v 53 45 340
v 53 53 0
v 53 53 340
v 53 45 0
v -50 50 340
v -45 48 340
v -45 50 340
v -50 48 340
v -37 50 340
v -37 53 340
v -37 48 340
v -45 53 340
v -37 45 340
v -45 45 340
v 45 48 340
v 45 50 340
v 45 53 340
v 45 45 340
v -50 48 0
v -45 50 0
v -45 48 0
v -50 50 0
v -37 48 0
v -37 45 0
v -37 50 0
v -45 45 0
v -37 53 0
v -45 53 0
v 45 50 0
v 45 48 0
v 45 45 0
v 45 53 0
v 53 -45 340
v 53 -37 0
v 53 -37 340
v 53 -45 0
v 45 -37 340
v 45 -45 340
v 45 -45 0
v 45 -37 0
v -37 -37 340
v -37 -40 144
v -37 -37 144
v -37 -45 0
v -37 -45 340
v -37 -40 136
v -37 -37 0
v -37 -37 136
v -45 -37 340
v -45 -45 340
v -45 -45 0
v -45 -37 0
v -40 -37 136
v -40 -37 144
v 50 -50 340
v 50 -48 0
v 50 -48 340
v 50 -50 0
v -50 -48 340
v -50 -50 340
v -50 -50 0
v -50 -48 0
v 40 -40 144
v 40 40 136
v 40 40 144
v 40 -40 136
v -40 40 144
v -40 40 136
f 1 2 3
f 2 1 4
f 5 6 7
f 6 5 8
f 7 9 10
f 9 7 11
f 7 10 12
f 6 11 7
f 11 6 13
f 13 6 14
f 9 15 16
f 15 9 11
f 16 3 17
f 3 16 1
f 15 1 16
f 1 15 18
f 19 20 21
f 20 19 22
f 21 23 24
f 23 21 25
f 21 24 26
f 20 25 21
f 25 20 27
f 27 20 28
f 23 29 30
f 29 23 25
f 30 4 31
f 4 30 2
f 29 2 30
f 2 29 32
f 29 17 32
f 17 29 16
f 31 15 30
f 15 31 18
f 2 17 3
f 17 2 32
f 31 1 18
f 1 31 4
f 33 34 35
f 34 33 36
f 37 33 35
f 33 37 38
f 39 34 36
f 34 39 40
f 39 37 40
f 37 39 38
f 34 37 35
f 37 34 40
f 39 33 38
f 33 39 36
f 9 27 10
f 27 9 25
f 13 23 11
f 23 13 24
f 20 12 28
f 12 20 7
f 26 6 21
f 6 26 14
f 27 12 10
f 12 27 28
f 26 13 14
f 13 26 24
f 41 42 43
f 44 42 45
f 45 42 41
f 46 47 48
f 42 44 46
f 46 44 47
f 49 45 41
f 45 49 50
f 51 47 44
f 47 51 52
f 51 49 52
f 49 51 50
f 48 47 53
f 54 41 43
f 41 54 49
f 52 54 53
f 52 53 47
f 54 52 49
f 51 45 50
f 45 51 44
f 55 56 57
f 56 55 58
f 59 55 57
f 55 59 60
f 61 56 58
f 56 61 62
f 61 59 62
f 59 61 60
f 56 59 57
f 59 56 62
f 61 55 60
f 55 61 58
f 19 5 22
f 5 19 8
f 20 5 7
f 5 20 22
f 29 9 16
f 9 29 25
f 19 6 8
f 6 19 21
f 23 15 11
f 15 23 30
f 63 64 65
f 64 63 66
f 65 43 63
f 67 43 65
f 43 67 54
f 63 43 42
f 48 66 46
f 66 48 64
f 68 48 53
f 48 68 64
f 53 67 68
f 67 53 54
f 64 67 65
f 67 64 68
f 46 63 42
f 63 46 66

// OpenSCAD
// ISM-SAT-1 3U bus study — B5 #31
// Units: mm. Structure sketch only — no weapons geometry.

u = 100;
h_3u = 340;

module rails() {
    for (xy = [[1, 1], [1, -1], [-1, 1], [-1, -1]])
        translate([xy[0] * (u / 2 - 5), xy[1] * (u / 2 - 5), 0])
            cube([8, 8, h_3u], center = false);
}

module panels() {
    translate([-u / 2, -u / 2, 0])
        cube([u, 2, h_3u]);
    translate([-u / 2, u / 2 - 2, 0])
        cube([u, 2, h_3u]);
}

module tray() {
    translate([-u / 2 + 10, -u / 2 + 10, h_3u * 0.4])
        cube([u - 20, u - 20, 8]);
}

echo("B5 #31: 3U bus study — educational structure; no weapons solids");
rails();
panels();
tray();
